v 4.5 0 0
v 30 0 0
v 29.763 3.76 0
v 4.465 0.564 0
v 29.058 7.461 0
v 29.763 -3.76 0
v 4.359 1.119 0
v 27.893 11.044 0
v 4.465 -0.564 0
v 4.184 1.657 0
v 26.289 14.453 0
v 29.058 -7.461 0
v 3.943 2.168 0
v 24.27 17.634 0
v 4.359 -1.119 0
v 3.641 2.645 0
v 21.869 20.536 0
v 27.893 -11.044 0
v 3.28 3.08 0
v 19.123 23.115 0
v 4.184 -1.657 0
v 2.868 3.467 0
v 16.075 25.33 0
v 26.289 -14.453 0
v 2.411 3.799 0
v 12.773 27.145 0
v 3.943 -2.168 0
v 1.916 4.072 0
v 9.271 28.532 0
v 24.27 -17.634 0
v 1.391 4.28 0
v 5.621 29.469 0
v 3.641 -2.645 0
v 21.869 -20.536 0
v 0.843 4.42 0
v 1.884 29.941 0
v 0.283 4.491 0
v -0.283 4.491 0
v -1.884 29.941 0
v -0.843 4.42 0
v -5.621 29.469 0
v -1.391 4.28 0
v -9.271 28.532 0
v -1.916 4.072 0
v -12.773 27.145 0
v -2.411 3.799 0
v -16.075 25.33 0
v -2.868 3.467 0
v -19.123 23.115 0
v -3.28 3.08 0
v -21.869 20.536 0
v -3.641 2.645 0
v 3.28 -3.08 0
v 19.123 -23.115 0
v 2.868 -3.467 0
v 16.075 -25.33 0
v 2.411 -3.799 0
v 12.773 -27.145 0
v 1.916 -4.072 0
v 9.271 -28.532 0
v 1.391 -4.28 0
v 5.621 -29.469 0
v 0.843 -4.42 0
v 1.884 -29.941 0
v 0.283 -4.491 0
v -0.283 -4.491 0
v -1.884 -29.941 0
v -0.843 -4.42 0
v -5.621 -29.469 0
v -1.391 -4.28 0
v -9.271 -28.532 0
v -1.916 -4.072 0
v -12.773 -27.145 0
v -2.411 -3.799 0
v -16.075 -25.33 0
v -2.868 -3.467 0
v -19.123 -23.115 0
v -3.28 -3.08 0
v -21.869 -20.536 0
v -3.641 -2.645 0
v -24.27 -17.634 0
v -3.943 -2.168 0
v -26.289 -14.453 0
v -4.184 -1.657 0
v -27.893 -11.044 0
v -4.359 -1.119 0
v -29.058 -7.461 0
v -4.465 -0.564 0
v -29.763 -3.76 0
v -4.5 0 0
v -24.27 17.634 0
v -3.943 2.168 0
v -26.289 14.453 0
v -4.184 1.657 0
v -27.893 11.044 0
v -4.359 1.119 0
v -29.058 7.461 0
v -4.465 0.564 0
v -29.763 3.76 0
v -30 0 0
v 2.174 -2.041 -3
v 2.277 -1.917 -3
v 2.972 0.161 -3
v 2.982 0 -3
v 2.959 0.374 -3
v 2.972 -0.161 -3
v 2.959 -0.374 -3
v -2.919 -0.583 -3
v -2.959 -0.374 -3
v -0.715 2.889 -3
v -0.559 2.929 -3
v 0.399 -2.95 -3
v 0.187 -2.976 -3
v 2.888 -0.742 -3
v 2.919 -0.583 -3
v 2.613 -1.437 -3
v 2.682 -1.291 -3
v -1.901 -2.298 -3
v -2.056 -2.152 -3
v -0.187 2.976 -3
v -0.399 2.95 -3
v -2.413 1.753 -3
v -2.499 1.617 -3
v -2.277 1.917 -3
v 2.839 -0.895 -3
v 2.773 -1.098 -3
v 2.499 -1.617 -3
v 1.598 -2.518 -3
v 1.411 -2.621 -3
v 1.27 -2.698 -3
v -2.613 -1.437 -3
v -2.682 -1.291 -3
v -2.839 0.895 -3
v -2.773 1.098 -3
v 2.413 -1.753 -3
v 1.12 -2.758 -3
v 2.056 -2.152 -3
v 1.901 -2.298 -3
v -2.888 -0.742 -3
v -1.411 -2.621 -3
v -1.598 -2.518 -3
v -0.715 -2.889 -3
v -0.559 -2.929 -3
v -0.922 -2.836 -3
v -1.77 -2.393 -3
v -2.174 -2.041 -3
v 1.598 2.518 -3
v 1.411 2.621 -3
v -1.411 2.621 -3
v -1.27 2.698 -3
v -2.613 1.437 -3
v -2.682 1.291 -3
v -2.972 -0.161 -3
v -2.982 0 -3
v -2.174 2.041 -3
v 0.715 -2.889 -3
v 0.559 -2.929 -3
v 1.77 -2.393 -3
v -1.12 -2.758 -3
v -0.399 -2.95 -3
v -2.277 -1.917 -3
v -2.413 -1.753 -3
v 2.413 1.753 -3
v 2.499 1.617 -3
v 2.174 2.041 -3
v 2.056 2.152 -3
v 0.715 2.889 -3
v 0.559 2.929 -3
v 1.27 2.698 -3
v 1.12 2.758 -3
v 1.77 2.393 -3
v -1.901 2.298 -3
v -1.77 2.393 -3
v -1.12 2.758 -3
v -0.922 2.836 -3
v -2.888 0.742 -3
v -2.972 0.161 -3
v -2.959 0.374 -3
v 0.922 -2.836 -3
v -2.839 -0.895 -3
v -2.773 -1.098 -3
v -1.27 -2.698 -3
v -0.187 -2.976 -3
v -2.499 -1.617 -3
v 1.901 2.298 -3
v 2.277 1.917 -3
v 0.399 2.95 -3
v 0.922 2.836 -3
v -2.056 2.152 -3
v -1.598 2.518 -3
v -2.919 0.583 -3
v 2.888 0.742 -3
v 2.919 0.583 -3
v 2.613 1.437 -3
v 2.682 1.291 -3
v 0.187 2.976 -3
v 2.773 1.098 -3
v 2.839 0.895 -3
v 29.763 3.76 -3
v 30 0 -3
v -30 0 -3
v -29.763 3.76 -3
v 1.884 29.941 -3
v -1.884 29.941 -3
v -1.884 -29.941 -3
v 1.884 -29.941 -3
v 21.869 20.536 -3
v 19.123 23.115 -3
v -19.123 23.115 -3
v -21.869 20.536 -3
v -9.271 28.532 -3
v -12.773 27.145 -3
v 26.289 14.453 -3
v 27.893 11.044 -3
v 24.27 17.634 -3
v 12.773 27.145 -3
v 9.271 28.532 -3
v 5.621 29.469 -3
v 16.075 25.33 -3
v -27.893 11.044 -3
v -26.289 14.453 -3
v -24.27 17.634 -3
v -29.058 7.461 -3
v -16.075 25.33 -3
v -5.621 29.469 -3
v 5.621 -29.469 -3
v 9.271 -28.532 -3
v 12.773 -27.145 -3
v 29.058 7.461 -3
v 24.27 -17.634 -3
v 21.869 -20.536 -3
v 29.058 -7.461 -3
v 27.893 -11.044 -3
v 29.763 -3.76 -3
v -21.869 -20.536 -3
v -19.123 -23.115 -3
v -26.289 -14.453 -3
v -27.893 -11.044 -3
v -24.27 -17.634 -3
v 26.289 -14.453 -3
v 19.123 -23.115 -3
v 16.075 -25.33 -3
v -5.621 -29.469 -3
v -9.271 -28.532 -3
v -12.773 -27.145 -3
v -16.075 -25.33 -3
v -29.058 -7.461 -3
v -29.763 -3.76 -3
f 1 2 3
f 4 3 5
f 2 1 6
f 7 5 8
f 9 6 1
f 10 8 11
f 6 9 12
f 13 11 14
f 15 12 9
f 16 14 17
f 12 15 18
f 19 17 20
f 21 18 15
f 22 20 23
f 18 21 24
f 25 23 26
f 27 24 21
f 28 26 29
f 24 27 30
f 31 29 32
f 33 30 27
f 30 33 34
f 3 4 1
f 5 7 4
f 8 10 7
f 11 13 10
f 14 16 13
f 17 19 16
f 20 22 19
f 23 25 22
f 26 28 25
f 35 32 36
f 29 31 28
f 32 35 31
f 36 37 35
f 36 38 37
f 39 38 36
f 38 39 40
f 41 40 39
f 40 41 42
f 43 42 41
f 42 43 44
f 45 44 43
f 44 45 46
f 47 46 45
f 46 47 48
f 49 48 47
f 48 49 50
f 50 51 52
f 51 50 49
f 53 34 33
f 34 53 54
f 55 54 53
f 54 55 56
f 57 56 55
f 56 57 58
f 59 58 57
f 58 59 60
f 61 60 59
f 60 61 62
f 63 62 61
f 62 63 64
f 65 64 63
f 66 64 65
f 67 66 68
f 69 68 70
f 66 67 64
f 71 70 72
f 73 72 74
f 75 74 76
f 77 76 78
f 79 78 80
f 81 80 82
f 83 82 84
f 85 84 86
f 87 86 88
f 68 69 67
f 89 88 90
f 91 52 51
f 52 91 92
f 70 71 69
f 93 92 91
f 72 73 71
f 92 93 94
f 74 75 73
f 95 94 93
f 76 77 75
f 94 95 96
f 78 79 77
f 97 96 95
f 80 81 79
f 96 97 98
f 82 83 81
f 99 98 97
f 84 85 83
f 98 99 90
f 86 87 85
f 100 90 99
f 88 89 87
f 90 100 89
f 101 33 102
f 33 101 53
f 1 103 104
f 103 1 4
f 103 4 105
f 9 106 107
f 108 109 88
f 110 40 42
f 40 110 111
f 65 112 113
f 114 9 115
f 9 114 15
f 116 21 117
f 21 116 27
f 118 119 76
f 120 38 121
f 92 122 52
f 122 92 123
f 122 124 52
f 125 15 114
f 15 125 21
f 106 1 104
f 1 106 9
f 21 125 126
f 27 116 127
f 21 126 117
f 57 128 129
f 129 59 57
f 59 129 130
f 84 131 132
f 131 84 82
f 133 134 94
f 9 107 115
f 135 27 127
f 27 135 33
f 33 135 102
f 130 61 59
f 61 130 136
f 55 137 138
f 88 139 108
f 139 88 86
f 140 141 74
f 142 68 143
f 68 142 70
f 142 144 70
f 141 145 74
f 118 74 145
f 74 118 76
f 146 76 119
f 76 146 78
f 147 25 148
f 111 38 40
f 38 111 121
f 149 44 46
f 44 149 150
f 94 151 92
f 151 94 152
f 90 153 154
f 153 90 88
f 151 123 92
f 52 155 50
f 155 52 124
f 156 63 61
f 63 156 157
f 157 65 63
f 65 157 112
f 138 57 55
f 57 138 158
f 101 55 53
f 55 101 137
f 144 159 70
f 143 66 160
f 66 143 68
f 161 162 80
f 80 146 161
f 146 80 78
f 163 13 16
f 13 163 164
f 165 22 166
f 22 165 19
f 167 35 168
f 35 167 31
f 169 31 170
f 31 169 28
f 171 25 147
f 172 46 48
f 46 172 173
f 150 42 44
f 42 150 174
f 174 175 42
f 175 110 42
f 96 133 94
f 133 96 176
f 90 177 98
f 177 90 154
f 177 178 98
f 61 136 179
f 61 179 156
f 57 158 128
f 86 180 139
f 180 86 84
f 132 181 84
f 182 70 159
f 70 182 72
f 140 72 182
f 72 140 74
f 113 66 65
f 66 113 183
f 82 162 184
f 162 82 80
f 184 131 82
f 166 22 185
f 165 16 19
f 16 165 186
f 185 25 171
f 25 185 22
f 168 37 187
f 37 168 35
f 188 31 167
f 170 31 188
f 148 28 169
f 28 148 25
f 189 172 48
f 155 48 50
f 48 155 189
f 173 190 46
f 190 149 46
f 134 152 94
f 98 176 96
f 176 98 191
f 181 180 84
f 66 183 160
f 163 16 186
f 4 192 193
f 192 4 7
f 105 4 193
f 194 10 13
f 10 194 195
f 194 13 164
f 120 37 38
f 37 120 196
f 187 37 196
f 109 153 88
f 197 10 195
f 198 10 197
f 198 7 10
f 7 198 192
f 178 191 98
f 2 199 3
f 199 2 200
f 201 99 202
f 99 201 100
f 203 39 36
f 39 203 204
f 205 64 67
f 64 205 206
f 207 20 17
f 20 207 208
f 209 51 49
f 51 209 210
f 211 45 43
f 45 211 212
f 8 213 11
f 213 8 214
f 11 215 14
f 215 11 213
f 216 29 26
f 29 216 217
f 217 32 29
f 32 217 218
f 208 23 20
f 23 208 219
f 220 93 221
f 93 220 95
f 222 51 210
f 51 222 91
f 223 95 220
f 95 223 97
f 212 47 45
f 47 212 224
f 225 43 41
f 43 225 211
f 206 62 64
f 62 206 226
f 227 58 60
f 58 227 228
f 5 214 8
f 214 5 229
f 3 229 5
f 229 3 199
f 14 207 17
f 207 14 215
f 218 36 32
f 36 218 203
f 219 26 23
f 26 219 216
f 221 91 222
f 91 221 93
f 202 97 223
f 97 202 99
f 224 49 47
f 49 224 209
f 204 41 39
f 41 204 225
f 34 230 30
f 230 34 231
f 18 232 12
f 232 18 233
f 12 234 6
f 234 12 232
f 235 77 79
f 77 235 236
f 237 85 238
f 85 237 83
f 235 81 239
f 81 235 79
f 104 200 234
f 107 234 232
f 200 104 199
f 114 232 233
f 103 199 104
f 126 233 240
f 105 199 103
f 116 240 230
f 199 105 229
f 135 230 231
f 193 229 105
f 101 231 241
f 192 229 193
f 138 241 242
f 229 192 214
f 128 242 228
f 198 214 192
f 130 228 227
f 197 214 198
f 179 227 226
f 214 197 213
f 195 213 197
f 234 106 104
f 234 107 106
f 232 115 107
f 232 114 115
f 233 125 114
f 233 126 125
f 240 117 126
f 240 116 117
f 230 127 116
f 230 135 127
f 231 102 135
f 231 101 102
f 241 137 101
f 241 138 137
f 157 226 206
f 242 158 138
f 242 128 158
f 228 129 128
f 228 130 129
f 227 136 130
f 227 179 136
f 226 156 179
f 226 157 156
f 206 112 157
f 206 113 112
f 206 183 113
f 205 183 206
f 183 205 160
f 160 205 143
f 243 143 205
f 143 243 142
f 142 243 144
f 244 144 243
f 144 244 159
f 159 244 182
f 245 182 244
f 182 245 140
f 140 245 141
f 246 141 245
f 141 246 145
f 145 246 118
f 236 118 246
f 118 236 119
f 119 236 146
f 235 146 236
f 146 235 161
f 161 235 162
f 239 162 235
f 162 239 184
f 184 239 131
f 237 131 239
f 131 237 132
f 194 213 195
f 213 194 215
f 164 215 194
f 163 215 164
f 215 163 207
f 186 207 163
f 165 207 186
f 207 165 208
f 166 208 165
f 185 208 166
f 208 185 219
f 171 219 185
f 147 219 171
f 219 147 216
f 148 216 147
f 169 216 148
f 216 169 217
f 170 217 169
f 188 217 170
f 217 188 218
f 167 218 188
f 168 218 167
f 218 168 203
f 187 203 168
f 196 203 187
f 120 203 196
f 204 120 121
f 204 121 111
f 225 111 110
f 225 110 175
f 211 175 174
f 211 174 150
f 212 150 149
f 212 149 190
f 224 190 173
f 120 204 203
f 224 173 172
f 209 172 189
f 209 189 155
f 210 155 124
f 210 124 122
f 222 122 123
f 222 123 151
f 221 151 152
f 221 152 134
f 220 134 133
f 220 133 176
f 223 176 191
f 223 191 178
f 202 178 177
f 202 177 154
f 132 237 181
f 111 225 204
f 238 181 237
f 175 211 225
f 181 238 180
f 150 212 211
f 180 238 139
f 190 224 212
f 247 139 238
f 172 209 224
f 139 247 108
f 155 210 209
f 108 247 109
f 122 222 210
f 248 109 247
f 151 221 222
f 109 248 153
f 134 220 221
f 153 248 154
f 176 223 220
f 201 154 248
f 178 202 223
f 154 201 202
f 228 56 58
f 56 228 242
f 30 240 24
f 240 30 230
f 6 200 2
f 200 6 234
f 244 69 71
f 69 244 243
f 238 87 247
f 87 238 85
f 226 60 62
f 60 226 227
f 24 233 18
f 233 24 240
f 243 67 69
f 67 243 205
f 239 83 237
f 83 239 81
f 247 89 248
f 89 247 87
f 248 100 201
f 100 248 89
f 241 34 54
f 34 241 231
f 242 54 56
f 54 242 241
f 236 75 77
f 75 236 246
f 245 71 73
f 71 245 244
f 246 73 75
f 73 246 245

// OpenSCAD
$fn = 50;


difference() {
	union() {
		translate(v = [0, 0, -3.0000000000]) {
			cylinder(h = 3, r = 30.0000000000);
		}
	}
	union() {
		translate(v = [0, 0, 0]) {
			rotate(a = [0, 0, 0]) {
				difference() {
					union() {
						translate(v = [0, 0, -6.0000000000]) {
							cylinder(h = 6, r = 2.2500000000);
						}
						translate(v = [0, 0, -4.2000000000]) {
							cylinder(h = 4.2000000000, r1 = 2.3750000000, r2 = 4.5000000000);
						}
						translate(v = [0, 0, -6.0000000000]) {
							cylinder(h = 6, r = 2.3750000000);
						}
						translate(v = [0, 0, -6.0000000000]) {
							cylinder(h = 6, r = 2.2500000000);
						}
					}
					union();
				}
			}
		}
	}
}
